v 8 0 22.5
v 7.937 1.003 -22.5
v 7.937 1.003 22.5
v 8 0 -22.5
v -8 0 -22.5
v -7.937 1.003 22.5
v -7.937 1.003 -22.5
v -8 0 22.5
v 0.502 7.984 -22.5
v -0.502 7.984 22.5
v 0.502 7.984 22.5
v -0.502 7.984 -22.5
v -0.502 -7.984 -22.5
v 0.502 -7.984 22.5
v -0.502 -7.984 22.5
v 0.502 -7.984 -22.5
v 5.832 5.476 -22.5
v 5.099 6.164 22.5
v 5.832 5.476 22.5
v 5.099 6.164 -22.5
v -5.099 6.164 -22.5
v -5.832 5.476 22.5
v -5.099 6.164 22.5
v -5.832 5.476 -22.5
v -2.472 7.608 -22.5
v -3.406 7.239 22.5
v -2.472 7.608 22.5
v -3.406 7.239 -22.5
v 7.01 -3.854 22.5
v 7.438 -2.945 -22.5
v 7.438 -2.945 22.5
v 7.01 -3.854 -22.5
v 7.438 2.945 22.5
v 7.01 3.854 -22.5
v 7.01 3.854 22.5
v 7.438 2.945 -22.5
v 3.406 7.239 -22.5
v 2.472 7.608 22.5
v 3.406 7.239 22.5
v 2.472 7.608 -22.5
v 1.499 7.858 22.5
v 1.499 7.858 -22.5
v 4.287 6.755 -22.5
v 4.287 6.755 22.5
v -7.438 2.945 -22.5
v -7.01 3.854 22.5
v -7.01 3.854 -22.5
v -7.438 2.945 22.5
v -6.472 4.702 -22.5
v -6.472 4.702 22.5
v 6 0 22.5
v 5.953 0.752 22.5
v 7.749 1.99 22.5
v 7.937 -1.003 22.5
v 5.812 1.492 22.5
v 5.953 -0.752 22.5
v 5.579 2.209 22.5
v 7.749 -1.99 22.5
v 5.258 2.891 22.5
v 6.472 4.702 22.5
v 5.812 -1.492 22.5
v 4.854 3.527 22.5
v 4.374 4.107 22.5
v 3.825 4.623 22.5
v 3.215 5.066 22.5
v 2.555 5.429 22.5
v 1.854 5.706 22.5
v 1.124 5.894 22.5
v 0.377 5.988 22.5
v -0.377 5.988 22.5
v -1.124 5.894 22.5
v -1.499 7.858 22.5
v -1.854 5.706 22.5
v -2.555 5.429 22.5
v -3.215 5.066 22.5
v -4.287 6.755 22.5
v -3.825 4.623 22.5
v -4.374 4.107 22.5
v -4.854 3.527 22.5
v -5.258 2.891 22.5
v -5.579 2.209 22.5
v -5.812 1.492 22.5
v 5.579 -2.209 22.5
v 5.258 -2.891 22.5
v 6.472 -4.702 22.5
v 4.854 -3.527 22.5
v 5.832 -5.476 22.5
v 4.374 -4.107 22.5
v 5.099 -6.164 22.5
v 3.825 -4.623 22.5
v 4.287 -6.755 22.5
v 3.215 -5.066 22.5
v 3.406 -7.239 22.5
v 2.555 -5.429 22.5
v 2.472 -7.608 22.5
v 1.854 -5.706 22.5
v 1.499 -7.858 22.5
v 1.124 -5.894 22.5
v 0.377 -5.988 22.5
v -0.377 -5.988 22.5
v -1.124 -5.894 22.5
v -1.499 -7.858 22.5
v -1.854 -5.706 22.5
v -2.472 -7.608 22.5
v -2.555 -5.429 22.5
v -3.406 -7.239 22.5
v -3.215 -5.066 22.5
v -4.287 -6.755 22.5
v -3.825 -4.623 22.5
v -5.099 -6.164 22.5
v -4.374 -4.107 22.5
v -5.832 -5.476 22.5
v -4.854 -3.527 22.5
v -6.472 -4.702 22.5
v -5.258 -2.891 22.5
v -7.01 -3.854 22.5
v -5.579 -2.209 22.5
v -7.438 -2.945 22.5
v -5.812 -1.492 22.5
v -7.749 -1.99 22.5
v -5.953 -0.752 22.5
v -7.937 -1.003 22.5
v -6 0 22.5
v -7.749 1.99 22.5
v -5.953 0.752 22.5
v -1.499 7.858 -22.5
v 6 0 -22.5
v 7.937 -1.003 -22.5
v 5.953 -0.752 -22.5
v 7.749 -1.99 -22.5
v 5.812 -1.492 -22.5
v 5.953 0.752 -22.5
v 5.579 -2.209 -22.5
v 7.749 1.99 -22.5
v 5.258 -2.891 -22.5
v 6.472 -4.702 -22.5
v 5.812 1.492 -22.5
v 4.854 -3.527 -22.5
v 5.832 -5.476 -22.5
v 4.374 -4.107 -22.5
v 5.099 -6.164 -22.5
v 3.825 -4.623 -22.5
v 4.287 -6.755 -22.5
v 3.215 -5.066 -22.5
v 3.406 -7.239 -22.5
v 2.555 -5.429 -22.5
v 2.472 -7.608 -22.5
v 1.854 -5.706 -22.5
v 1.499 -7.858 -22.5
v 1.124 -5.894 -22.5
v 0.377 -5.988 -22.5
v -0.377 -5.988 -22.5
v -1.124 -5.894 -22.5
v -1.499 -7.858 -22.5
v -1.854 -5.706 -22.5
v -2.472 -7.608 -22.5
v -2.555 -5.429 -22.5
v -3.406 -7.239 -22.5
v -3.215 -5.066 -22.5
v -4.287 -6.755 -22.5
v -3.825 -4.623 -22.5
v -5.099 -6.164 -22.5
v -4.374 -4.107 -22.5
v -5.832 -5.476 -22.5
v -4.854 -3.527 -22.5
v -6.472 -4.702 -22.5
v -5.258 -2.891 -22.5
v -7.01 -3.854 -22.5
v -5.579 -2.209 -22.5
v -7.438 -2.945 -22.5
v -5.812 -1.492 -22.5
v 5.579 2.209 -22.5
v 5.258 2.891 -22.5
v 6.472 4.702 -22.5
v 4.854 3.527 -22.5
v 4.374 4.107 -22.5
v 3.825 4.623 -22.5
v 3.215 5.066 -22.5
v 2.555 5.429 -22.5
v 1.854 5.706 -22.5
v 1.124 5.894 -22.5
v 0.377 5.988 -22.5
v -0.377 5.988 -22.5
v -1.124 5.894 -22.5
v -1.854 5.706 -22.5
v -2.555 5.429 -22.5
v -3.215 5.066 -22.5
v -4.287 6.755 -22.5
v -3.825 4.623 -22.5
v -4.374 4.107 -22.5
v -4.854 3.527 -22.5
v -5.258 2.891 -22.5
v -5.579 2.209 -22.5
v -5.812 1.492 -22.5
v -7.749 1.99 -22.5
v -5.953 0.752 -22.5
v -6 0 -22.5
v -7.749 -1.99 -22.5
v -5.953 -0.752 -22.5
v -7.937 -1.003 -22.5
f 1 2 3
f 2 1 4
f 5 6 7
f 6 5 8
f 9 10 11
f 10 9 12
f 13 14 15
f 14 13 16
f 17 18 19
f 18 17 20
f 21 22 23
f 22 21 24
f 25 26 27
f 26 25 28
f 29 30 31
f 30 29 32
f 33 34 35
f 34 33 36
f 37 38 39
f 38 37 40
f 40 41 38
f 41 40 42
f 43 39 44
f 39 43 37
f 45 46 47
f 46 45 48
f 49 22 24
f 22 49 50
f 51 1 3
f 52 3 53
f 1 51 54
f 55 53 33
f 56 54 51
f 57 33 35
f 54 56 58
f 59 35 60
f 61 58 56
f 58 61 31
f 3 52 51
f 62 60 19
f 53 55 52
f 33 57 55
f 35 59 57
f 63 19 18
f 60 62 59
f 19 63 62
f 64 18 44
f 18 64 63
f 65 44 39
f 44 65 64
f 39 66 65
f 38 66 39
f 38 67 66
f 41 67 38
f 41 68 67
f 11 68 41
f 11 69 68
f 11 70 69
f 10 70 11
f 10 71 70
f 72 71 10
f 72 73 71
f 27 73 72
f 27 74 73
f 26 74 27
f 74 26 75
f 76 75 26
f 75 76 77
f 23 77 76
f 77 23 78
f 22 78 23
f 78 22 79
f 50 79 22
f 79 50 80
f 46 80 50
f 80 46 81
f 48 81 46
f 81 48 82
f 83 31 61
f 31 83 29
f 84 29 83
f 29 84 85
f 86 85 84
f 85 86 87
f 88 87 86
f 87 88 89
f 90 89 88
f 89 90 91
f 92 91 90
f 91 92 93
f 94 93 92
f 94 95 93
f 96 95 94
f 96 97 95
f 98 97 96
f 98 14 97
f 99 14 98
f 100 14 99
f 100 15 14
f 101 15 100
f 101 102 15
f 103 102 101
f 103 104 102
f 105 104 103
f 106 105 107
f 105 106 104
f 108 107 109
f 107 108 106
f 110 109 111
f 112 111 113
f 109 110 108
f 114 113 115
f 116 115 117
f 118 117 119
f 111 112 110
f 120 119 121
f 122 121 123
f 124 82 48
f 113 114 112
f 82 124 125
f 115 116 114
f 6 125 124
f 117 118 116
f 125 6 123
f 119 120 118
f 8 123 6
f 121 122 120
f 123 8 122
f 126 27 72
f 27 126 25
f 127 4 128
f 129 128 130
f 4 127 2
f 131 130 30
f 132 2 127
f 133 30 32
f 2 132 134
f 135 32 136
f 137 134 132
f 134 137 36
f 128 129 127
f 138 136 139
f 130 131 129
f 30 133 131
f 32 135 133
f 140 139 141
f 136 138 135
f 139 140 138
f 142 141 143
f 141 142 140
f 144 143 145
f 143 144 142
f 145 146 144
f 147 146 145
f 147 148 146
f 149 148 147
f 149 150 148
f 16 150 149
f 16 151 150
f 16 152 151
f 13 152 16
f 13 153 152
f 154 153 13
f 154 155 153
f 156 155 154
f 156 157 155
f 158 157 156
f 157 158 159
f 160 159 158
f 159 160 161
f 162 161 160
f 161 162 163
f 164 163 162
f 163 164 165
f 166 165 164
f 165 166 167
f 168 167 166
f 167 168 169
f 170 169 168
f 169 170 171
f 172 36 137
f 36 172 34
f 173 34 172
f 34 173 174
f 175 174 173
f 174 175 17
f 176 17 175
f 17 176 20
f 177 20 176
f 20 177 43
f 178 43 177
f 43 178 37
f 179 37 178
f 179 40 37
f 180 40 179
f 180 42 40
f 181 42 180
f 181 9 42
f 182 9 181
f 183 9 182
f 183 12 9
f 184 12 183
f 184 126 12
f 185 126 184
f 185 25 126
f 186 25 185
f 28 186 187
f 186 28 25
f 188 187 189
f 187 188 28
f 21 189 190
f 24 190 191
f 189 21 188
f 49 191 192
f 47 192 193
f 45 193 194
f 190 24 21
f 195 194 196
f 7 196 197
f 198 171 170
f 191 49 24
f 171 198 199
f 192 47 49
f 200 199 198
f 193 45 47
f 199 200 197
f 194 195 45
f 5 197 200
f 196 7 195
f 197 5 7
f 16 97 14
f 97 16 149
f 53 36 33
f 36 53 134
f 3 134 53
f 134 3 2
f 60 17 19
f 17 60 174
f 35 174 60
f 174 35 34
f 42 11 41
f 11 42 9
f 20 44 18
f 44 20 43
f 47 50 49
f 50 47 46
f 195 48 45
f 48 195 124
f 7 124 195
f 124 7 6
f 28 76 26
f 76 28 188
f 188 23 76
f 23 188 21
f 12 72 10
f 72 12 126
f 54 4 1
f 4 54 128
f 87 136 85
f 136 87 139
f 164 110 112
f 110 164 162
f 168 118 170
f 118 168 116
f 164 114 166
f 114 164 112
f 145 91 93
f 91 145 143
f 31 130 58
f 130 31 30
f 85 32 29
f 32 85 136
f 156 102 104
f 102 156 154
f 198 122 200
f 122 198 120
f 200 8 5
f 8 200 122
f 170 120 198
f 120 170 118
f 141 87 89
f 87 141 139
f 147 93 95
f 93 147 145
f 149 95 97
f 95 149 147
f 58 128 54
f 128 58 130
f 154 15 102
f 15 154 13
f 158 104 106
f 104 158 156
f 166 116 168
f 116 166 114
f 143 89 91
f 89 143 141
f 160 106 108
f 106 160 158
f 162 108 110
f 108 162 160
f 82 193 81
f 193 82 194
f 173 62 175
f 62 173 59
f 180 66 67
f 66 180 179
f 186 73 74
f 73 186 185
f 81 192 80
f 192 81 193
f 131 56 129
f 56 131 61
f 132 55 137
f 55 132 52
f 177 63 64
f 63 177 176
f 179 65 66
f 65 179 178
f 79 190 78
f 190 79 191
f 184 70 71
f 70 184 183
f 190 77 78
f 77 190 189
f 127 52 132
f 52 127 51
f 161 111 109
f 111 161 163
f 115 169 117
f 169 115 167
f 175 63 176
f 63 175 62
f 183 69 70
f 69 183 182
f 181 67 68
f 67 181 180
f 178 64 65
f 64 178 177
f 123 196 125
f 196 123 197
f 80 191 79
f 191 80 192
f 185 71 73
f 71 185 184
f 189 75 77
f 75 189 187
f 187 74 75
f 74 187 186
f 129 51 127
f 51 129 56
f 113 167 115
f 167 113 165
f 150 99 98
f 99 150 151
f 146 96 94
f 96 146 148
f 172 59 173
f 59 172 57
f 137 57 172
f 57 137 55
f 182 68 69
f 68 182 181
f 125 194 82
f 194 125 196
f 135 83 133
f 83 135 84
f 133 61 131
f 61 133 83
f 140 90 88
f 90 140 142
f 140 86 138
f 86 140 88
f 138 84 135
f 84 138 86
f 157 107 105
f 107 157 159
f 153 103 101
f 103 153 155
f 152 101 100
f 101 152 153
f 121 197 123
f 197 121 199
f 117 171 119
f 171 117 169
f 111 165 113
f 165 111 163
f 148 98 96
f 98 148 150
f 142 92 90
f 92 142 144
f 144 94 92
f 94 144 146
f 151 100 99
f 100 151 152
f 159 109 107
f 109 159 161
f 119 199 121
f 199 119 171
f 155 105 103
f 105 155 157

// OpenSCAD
$fn = 50;


difference() {
	union() {
		translate(v = [0, 0, -22.5000000000]) {
			cylinder(h = 45, r = 8.0000000000);
		}
	}
	union() {
		translate(v = [0, 0, -100.0000000000]) {
			cylinder(h = 200, r = 6);
		}
	}
}
